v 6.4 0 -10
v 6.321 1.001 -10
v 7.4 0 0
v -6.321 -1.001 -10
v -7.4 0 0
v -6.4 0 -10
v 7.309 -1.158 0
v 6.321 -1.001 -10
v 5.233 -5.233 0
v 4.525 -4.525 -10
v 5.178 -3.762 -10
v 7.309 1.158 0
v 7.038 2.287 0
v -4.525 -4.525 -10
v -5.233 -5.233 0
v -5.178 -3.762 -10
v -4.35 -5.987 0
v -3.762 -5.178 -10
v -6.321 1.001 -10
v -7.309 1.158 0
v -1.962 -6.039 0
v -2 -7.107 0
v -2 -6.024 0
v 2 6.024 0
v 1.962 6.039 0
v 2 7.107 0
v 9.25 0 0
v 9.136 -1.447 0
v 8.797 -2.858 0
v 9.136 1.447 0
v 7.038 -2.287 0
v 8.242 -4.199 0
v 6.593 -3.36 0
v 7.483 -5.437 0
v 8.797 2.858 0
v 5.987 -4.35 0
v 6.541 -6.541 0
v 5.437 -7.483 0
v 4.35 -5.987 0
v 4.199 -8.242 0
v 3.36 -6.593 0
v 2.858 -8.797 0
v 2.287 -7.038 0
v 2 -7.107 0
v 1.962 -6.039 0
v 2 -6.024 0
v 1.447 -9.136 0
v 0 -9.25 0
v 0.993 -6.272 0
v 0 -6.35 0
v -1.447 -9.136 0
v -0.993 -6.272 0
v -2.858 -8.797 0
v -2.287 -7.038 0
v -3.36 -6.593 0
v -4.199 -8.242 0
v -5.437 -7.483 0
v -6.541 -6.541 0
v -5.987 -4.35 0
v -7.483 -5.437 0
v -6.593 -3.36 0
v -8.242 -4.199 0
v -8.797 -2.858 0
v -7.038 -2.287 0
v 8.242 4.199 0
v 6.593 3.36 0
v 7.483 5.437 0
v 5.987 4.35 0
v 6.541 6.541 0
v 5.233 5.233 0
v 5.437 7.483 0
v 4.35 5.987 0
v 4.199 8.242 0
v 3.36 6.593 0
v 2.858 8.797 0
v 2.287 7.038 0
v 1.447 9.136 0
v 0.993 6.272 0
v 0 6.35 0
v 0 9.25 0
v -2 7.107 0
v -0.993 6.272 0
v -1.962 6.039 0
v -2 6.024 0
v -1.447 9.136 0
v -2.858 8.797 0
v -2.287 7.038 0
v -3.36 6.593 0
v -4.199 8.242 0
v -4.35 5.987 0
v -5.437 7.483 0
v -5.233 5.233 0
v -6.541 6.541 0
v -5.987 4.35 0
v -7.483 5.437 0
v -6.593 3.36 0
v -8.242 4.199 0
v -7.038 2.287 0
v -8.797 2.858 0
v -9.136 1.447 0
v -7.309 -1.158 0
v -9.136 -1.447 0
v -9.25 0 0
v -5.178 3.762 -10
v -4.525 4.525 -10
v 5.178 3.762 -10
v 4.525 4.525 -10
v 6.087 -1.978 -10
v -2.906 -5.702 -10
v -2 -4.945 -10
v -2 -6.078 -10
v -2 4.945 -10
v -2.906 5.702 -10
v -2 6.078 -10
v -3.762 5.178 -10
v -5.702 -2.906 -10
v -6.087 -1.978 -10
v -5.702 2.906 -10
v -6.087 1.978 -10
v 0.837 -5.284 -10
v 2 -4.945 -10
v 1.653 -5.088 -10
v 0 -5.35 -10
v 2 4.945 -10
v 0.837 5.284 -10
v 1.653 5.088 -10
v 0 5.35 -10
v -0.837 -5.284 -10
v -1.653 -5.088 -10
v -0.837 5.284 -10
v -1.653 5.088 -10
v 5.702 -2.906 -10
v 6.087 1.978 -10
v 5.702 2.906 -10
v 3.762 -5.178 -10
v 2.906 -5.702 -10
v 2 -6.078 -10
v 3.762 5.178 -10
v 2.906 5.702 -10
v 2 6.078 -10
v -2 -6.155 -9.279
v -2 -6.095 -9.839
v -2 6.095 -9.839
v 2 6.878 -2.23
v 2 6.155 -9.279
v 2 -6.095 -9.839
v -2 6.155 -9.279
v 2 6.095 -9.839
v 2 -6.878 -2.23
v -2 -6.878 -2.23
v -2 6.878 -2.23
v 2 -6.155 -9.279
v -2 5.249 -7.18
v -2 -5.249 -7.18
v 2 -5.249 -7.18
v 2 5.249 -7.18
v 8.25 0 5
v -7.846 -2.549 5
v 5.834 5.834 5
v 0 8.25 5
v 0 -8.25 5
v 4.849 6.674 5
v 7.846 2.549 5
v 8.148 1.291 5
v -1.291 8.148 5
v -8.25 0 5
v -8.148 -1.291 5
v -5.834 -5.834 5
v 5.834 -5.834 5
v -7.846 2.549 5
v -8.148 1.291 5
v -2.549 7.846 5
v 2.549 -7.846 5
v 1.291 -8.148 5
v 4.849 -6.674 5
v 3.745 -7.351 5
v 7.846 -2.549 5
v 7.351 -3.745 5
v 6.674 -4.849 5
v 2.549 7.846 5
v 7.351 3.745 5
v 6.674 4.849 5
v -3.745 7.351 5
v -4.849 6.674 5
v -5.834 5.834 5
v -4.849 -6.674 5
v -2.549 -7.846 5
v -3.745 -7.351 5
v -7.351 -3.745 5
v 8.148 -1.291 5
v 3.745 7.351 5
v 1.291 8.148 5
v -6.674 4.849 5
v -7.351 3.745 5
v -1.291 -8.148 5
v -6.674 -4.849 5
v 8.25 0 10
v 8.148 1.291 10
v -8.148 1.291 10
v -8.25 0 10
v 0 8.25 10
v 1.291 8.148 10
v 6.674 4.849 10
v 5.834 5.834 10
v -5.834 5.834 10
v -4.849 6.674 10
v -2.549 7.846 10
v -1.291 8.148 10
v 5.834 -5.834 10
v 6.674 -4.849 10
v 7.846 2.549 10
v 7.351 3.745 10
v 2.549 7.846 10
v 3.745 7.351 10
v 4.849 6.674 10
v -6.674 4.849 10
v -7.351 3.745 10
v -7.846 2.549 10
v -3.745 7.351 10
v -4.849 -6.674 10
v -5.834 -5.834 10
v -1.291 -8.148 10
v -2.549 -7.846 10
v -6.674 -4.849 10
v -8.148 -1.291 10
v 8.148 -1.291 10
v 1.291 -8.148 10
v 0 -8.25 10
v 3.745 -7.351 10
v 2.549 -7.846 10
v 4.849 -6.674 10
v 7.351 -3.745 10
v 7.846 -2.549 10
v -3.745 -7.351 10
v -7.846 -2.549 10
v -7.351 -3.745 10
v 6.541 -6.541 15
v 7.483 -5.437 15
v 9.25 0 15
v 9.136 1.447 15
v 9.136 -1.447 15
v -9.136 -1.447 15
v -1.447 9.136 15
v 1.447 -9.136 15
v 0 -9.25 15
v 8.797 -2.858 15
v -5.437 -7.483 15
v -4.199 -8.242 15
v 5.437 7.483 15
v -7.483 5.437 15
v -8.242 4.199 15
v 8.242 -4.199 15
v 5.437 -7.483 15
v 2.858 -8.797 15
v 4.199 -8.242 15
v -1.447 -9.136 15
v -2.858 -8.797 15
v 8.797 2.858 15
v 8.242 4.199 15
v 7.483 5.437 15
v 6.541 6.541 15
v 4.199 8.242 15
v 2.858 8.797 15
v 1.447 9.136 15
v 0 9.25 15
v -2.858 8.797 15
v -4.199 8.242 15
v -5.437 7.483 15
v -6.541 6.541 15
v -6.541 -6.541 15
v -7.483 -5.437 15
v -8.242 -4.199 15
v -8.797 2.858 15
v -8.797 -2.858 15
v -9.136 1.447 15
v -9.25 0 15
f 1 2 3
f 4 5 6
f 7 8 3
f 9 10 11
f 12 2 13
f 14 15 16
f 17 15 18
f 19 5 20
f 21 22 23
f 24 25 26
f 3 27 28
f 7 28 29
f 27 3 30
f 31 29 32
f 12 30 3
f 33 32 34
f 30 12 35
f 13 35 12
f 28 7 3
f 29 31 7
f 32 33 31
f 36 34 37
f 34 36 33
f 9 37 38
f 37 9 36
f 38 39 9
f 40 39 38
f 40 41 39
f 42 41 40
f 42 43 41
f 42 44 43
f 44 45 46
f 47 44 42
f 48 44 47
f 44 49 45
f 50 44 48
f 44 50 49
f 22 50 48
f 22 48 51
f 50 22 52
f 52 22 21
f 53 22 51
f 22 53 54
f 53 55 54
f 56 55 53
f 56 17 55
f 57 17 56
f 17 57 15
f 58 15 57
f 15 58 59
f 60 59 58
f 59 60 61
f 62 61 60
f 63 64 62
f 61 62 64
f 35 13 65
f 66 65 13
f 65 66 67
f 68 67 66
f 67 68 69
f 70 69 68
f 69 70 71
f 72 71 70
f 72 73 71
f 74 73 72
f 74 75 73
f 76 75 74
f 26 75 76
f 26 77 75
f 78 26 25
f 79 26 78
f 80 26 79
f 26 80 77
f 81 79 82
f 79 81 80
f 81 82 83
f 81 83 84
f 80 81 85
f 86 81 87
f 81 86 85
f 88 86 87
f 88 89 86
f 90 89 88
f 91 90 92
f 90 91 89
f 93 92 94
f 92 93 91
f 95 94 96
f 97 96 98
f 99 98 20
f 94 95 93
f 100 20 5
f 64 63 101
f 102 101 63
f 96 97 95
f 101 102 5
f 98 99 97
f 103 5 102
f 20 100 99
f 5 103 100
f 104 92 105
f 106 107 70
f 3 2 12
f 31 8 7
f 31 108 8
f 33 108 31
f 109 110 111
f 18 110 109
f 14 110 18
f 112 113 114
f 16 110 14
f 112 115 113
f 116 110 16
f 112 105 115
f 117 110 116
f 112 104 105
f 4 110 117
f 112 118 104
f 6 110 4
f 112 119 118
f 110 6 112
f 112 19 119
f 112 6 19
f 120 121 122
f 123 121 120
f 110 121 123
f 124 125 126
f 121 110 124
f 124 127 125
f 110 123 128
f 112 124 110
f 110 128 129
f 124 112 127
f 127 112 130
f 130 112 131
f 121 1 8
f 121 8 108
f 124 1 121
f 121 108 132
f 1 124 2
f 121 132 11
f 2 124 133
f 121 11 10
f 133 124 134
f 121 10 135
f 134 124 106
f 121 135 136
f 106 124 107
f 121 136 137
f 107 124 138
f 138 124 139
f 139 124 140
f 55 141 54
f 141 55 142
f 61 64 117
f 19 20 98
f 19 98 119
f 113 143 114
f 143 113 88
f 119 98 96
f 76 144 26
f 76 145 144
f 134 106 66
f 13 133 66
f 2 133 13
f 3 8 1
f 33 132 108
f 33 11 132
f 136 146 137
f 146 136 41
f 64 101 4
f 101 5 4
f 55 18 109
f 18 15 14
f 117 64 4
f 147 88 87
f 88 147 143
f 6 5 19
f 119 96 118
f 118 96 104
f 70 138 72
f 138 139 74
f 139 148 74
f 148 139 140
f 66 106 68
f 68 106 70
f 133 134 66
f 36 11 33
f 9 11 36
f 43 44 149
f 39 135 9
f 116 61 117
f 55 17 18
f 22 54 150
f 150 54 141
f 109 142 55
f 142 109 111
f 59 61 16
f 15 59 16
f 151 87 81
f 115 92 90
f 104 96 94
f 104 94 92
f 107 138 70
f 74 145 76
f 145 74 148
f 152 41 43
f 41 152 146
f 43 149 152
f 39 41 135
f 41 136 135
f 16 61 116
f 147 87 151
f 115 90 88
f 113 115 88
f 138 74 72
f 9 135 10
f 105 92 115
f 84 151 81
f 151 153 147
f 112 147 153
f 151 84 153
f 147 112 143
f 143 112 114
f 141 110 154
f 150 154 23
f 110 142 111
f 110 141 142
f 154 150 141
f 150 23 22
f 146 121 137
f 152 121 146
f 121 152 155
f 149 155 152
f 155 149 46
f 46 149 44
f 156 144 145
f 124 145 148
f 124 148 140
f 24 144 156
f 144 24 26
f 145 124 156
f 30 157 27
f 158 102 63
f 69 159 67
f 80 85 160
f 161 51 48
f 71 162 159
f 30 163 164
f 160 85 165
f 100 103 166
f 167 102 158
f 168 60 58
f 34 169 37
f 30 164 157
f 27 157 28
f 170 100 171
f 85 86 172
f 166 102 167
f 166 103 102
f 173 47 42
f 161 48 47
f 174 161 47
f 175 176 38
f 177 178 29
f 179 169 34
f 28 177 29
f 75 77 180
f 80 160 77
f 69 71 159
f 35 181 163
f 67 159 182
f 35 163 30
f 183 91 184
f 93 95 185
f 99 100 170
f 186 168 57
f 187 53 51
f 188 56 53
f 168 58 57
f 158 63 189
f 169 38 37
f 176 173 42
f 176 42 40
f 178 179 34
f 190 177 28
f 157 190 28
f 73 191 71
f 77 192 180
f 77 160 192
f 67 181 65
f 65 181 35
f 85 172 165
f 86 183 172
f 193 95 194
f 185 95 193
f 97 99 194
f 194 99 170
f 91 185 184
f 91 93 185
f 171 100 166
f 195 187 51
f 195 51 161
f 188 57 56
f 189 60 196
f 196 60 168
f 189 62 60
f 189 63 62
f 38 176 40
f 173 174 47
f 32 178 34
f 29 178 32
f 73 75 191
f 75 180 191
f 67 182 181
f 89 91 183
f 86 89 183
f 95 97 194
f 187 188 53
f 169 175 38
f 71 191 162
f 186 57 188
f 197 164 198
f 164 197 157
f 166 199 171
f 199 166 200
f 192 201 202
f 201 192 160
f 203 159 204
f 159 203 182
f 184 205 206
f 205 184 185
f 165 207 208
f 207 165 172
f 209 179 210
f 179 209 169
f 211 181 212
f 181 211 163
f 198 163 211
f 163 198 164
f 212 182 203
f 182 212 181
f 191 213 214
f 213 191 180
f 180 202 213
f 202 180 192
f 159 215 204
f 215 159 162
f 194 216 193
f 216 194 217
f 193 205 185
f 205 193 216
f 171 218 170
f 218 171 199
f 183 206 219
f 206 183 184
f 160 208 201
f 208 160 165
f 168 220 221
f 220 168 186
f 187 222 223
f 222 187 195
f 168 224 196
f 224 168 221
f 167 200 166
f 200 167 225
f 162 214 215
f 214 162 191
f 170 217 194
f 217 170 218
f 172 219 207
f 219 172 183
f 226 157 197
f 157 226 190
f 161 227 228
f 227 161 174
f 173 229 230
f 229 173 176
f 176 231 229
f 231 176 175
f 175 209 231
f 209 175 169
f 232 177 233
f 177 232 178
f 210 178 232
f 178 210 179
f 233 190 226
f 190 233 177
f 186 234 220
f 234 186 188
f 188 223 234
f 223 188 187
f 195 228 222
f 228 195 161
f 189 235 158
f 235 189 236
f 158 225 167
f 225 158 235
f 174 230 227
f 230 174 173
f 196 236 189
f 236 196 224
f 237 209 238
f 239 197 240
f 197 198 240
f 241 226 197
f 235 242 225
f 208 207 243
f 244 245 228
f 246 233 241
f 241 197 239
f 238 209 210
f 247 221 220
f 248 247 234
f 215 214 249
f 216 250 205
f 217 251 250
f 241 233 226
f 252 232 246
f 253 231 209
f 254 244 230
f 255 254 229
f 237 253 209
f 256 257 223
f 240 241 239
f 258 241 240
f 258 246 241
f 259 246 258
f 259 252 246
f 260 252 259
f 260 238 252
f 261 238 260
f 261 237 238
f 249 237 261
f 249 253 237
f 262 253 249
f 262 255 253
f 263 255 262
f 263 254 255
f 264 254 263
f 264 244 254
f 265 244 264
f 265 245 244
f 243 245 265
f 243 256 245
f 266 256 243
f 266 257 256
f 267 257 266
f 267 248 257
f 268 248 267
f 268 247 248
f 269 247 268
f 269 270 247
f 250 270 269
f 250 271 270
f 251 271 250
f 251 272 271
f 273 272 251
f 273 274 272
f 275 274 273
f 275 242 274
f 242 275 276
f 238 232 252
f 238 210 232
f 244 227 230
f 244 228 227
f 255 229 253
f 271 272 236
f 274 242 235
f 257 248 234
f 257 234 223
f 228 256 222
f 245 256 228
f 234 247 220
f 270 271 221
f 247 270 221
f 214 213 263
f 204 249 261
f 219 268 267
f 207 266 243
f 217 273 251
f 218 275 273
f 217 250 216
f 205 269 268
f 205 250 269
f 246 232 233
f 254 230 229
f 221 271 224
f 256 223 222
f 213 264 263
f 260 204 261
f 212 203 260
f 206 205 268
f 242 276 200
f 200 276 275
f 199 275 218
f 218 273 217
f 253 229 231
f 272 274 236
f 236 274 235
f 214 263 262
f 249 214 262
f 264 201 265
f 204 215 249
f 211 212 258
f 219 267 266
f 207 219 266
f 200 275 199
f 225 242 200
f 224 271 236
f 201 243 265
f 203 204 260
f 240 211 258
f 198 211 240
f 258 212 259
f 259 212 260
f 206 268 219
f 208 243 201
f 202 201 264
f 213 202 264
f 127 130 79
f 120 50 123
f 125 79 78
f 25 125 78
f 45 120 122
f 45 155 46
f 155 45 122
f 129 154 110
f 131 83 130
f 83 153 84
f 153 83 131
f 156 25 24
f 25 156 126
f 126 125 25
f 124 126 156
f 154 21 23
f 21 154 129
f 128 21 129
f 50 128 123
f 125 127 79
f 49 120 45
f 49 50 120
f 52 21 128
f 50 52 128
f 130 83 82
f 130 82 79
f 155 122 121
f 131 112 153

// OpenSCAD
$fn=40;

tubeInnerDia=14.8;
tubeInnerCutoutDia=12.7;
tubeInnerTol=1;

translate([0,0,0])
    cylinder(r1=18.5/2, r2=18.5/2-1,h=5);
translate([0,0,5])
    cylinder(r=18.5/2-1,h=5);
translate([0,0,5+5])
    cylinder(r2=18.5/2, r1=18.5/2-1,h=5);

difference()
{
    translate([0,0,-10])
        cylinder(r2=tubeInnerDia/2,r1=tubeInnerDia/2-tubeInnerTol,h=10);
    cube([4,15,11*2], center=true);
}

translate([0,0,-10])
    cylinder(r2=tubeInnerCutoutDia/2, r1=tubeInnerCutoutDia/2-tubeInnerTol,h=10);
